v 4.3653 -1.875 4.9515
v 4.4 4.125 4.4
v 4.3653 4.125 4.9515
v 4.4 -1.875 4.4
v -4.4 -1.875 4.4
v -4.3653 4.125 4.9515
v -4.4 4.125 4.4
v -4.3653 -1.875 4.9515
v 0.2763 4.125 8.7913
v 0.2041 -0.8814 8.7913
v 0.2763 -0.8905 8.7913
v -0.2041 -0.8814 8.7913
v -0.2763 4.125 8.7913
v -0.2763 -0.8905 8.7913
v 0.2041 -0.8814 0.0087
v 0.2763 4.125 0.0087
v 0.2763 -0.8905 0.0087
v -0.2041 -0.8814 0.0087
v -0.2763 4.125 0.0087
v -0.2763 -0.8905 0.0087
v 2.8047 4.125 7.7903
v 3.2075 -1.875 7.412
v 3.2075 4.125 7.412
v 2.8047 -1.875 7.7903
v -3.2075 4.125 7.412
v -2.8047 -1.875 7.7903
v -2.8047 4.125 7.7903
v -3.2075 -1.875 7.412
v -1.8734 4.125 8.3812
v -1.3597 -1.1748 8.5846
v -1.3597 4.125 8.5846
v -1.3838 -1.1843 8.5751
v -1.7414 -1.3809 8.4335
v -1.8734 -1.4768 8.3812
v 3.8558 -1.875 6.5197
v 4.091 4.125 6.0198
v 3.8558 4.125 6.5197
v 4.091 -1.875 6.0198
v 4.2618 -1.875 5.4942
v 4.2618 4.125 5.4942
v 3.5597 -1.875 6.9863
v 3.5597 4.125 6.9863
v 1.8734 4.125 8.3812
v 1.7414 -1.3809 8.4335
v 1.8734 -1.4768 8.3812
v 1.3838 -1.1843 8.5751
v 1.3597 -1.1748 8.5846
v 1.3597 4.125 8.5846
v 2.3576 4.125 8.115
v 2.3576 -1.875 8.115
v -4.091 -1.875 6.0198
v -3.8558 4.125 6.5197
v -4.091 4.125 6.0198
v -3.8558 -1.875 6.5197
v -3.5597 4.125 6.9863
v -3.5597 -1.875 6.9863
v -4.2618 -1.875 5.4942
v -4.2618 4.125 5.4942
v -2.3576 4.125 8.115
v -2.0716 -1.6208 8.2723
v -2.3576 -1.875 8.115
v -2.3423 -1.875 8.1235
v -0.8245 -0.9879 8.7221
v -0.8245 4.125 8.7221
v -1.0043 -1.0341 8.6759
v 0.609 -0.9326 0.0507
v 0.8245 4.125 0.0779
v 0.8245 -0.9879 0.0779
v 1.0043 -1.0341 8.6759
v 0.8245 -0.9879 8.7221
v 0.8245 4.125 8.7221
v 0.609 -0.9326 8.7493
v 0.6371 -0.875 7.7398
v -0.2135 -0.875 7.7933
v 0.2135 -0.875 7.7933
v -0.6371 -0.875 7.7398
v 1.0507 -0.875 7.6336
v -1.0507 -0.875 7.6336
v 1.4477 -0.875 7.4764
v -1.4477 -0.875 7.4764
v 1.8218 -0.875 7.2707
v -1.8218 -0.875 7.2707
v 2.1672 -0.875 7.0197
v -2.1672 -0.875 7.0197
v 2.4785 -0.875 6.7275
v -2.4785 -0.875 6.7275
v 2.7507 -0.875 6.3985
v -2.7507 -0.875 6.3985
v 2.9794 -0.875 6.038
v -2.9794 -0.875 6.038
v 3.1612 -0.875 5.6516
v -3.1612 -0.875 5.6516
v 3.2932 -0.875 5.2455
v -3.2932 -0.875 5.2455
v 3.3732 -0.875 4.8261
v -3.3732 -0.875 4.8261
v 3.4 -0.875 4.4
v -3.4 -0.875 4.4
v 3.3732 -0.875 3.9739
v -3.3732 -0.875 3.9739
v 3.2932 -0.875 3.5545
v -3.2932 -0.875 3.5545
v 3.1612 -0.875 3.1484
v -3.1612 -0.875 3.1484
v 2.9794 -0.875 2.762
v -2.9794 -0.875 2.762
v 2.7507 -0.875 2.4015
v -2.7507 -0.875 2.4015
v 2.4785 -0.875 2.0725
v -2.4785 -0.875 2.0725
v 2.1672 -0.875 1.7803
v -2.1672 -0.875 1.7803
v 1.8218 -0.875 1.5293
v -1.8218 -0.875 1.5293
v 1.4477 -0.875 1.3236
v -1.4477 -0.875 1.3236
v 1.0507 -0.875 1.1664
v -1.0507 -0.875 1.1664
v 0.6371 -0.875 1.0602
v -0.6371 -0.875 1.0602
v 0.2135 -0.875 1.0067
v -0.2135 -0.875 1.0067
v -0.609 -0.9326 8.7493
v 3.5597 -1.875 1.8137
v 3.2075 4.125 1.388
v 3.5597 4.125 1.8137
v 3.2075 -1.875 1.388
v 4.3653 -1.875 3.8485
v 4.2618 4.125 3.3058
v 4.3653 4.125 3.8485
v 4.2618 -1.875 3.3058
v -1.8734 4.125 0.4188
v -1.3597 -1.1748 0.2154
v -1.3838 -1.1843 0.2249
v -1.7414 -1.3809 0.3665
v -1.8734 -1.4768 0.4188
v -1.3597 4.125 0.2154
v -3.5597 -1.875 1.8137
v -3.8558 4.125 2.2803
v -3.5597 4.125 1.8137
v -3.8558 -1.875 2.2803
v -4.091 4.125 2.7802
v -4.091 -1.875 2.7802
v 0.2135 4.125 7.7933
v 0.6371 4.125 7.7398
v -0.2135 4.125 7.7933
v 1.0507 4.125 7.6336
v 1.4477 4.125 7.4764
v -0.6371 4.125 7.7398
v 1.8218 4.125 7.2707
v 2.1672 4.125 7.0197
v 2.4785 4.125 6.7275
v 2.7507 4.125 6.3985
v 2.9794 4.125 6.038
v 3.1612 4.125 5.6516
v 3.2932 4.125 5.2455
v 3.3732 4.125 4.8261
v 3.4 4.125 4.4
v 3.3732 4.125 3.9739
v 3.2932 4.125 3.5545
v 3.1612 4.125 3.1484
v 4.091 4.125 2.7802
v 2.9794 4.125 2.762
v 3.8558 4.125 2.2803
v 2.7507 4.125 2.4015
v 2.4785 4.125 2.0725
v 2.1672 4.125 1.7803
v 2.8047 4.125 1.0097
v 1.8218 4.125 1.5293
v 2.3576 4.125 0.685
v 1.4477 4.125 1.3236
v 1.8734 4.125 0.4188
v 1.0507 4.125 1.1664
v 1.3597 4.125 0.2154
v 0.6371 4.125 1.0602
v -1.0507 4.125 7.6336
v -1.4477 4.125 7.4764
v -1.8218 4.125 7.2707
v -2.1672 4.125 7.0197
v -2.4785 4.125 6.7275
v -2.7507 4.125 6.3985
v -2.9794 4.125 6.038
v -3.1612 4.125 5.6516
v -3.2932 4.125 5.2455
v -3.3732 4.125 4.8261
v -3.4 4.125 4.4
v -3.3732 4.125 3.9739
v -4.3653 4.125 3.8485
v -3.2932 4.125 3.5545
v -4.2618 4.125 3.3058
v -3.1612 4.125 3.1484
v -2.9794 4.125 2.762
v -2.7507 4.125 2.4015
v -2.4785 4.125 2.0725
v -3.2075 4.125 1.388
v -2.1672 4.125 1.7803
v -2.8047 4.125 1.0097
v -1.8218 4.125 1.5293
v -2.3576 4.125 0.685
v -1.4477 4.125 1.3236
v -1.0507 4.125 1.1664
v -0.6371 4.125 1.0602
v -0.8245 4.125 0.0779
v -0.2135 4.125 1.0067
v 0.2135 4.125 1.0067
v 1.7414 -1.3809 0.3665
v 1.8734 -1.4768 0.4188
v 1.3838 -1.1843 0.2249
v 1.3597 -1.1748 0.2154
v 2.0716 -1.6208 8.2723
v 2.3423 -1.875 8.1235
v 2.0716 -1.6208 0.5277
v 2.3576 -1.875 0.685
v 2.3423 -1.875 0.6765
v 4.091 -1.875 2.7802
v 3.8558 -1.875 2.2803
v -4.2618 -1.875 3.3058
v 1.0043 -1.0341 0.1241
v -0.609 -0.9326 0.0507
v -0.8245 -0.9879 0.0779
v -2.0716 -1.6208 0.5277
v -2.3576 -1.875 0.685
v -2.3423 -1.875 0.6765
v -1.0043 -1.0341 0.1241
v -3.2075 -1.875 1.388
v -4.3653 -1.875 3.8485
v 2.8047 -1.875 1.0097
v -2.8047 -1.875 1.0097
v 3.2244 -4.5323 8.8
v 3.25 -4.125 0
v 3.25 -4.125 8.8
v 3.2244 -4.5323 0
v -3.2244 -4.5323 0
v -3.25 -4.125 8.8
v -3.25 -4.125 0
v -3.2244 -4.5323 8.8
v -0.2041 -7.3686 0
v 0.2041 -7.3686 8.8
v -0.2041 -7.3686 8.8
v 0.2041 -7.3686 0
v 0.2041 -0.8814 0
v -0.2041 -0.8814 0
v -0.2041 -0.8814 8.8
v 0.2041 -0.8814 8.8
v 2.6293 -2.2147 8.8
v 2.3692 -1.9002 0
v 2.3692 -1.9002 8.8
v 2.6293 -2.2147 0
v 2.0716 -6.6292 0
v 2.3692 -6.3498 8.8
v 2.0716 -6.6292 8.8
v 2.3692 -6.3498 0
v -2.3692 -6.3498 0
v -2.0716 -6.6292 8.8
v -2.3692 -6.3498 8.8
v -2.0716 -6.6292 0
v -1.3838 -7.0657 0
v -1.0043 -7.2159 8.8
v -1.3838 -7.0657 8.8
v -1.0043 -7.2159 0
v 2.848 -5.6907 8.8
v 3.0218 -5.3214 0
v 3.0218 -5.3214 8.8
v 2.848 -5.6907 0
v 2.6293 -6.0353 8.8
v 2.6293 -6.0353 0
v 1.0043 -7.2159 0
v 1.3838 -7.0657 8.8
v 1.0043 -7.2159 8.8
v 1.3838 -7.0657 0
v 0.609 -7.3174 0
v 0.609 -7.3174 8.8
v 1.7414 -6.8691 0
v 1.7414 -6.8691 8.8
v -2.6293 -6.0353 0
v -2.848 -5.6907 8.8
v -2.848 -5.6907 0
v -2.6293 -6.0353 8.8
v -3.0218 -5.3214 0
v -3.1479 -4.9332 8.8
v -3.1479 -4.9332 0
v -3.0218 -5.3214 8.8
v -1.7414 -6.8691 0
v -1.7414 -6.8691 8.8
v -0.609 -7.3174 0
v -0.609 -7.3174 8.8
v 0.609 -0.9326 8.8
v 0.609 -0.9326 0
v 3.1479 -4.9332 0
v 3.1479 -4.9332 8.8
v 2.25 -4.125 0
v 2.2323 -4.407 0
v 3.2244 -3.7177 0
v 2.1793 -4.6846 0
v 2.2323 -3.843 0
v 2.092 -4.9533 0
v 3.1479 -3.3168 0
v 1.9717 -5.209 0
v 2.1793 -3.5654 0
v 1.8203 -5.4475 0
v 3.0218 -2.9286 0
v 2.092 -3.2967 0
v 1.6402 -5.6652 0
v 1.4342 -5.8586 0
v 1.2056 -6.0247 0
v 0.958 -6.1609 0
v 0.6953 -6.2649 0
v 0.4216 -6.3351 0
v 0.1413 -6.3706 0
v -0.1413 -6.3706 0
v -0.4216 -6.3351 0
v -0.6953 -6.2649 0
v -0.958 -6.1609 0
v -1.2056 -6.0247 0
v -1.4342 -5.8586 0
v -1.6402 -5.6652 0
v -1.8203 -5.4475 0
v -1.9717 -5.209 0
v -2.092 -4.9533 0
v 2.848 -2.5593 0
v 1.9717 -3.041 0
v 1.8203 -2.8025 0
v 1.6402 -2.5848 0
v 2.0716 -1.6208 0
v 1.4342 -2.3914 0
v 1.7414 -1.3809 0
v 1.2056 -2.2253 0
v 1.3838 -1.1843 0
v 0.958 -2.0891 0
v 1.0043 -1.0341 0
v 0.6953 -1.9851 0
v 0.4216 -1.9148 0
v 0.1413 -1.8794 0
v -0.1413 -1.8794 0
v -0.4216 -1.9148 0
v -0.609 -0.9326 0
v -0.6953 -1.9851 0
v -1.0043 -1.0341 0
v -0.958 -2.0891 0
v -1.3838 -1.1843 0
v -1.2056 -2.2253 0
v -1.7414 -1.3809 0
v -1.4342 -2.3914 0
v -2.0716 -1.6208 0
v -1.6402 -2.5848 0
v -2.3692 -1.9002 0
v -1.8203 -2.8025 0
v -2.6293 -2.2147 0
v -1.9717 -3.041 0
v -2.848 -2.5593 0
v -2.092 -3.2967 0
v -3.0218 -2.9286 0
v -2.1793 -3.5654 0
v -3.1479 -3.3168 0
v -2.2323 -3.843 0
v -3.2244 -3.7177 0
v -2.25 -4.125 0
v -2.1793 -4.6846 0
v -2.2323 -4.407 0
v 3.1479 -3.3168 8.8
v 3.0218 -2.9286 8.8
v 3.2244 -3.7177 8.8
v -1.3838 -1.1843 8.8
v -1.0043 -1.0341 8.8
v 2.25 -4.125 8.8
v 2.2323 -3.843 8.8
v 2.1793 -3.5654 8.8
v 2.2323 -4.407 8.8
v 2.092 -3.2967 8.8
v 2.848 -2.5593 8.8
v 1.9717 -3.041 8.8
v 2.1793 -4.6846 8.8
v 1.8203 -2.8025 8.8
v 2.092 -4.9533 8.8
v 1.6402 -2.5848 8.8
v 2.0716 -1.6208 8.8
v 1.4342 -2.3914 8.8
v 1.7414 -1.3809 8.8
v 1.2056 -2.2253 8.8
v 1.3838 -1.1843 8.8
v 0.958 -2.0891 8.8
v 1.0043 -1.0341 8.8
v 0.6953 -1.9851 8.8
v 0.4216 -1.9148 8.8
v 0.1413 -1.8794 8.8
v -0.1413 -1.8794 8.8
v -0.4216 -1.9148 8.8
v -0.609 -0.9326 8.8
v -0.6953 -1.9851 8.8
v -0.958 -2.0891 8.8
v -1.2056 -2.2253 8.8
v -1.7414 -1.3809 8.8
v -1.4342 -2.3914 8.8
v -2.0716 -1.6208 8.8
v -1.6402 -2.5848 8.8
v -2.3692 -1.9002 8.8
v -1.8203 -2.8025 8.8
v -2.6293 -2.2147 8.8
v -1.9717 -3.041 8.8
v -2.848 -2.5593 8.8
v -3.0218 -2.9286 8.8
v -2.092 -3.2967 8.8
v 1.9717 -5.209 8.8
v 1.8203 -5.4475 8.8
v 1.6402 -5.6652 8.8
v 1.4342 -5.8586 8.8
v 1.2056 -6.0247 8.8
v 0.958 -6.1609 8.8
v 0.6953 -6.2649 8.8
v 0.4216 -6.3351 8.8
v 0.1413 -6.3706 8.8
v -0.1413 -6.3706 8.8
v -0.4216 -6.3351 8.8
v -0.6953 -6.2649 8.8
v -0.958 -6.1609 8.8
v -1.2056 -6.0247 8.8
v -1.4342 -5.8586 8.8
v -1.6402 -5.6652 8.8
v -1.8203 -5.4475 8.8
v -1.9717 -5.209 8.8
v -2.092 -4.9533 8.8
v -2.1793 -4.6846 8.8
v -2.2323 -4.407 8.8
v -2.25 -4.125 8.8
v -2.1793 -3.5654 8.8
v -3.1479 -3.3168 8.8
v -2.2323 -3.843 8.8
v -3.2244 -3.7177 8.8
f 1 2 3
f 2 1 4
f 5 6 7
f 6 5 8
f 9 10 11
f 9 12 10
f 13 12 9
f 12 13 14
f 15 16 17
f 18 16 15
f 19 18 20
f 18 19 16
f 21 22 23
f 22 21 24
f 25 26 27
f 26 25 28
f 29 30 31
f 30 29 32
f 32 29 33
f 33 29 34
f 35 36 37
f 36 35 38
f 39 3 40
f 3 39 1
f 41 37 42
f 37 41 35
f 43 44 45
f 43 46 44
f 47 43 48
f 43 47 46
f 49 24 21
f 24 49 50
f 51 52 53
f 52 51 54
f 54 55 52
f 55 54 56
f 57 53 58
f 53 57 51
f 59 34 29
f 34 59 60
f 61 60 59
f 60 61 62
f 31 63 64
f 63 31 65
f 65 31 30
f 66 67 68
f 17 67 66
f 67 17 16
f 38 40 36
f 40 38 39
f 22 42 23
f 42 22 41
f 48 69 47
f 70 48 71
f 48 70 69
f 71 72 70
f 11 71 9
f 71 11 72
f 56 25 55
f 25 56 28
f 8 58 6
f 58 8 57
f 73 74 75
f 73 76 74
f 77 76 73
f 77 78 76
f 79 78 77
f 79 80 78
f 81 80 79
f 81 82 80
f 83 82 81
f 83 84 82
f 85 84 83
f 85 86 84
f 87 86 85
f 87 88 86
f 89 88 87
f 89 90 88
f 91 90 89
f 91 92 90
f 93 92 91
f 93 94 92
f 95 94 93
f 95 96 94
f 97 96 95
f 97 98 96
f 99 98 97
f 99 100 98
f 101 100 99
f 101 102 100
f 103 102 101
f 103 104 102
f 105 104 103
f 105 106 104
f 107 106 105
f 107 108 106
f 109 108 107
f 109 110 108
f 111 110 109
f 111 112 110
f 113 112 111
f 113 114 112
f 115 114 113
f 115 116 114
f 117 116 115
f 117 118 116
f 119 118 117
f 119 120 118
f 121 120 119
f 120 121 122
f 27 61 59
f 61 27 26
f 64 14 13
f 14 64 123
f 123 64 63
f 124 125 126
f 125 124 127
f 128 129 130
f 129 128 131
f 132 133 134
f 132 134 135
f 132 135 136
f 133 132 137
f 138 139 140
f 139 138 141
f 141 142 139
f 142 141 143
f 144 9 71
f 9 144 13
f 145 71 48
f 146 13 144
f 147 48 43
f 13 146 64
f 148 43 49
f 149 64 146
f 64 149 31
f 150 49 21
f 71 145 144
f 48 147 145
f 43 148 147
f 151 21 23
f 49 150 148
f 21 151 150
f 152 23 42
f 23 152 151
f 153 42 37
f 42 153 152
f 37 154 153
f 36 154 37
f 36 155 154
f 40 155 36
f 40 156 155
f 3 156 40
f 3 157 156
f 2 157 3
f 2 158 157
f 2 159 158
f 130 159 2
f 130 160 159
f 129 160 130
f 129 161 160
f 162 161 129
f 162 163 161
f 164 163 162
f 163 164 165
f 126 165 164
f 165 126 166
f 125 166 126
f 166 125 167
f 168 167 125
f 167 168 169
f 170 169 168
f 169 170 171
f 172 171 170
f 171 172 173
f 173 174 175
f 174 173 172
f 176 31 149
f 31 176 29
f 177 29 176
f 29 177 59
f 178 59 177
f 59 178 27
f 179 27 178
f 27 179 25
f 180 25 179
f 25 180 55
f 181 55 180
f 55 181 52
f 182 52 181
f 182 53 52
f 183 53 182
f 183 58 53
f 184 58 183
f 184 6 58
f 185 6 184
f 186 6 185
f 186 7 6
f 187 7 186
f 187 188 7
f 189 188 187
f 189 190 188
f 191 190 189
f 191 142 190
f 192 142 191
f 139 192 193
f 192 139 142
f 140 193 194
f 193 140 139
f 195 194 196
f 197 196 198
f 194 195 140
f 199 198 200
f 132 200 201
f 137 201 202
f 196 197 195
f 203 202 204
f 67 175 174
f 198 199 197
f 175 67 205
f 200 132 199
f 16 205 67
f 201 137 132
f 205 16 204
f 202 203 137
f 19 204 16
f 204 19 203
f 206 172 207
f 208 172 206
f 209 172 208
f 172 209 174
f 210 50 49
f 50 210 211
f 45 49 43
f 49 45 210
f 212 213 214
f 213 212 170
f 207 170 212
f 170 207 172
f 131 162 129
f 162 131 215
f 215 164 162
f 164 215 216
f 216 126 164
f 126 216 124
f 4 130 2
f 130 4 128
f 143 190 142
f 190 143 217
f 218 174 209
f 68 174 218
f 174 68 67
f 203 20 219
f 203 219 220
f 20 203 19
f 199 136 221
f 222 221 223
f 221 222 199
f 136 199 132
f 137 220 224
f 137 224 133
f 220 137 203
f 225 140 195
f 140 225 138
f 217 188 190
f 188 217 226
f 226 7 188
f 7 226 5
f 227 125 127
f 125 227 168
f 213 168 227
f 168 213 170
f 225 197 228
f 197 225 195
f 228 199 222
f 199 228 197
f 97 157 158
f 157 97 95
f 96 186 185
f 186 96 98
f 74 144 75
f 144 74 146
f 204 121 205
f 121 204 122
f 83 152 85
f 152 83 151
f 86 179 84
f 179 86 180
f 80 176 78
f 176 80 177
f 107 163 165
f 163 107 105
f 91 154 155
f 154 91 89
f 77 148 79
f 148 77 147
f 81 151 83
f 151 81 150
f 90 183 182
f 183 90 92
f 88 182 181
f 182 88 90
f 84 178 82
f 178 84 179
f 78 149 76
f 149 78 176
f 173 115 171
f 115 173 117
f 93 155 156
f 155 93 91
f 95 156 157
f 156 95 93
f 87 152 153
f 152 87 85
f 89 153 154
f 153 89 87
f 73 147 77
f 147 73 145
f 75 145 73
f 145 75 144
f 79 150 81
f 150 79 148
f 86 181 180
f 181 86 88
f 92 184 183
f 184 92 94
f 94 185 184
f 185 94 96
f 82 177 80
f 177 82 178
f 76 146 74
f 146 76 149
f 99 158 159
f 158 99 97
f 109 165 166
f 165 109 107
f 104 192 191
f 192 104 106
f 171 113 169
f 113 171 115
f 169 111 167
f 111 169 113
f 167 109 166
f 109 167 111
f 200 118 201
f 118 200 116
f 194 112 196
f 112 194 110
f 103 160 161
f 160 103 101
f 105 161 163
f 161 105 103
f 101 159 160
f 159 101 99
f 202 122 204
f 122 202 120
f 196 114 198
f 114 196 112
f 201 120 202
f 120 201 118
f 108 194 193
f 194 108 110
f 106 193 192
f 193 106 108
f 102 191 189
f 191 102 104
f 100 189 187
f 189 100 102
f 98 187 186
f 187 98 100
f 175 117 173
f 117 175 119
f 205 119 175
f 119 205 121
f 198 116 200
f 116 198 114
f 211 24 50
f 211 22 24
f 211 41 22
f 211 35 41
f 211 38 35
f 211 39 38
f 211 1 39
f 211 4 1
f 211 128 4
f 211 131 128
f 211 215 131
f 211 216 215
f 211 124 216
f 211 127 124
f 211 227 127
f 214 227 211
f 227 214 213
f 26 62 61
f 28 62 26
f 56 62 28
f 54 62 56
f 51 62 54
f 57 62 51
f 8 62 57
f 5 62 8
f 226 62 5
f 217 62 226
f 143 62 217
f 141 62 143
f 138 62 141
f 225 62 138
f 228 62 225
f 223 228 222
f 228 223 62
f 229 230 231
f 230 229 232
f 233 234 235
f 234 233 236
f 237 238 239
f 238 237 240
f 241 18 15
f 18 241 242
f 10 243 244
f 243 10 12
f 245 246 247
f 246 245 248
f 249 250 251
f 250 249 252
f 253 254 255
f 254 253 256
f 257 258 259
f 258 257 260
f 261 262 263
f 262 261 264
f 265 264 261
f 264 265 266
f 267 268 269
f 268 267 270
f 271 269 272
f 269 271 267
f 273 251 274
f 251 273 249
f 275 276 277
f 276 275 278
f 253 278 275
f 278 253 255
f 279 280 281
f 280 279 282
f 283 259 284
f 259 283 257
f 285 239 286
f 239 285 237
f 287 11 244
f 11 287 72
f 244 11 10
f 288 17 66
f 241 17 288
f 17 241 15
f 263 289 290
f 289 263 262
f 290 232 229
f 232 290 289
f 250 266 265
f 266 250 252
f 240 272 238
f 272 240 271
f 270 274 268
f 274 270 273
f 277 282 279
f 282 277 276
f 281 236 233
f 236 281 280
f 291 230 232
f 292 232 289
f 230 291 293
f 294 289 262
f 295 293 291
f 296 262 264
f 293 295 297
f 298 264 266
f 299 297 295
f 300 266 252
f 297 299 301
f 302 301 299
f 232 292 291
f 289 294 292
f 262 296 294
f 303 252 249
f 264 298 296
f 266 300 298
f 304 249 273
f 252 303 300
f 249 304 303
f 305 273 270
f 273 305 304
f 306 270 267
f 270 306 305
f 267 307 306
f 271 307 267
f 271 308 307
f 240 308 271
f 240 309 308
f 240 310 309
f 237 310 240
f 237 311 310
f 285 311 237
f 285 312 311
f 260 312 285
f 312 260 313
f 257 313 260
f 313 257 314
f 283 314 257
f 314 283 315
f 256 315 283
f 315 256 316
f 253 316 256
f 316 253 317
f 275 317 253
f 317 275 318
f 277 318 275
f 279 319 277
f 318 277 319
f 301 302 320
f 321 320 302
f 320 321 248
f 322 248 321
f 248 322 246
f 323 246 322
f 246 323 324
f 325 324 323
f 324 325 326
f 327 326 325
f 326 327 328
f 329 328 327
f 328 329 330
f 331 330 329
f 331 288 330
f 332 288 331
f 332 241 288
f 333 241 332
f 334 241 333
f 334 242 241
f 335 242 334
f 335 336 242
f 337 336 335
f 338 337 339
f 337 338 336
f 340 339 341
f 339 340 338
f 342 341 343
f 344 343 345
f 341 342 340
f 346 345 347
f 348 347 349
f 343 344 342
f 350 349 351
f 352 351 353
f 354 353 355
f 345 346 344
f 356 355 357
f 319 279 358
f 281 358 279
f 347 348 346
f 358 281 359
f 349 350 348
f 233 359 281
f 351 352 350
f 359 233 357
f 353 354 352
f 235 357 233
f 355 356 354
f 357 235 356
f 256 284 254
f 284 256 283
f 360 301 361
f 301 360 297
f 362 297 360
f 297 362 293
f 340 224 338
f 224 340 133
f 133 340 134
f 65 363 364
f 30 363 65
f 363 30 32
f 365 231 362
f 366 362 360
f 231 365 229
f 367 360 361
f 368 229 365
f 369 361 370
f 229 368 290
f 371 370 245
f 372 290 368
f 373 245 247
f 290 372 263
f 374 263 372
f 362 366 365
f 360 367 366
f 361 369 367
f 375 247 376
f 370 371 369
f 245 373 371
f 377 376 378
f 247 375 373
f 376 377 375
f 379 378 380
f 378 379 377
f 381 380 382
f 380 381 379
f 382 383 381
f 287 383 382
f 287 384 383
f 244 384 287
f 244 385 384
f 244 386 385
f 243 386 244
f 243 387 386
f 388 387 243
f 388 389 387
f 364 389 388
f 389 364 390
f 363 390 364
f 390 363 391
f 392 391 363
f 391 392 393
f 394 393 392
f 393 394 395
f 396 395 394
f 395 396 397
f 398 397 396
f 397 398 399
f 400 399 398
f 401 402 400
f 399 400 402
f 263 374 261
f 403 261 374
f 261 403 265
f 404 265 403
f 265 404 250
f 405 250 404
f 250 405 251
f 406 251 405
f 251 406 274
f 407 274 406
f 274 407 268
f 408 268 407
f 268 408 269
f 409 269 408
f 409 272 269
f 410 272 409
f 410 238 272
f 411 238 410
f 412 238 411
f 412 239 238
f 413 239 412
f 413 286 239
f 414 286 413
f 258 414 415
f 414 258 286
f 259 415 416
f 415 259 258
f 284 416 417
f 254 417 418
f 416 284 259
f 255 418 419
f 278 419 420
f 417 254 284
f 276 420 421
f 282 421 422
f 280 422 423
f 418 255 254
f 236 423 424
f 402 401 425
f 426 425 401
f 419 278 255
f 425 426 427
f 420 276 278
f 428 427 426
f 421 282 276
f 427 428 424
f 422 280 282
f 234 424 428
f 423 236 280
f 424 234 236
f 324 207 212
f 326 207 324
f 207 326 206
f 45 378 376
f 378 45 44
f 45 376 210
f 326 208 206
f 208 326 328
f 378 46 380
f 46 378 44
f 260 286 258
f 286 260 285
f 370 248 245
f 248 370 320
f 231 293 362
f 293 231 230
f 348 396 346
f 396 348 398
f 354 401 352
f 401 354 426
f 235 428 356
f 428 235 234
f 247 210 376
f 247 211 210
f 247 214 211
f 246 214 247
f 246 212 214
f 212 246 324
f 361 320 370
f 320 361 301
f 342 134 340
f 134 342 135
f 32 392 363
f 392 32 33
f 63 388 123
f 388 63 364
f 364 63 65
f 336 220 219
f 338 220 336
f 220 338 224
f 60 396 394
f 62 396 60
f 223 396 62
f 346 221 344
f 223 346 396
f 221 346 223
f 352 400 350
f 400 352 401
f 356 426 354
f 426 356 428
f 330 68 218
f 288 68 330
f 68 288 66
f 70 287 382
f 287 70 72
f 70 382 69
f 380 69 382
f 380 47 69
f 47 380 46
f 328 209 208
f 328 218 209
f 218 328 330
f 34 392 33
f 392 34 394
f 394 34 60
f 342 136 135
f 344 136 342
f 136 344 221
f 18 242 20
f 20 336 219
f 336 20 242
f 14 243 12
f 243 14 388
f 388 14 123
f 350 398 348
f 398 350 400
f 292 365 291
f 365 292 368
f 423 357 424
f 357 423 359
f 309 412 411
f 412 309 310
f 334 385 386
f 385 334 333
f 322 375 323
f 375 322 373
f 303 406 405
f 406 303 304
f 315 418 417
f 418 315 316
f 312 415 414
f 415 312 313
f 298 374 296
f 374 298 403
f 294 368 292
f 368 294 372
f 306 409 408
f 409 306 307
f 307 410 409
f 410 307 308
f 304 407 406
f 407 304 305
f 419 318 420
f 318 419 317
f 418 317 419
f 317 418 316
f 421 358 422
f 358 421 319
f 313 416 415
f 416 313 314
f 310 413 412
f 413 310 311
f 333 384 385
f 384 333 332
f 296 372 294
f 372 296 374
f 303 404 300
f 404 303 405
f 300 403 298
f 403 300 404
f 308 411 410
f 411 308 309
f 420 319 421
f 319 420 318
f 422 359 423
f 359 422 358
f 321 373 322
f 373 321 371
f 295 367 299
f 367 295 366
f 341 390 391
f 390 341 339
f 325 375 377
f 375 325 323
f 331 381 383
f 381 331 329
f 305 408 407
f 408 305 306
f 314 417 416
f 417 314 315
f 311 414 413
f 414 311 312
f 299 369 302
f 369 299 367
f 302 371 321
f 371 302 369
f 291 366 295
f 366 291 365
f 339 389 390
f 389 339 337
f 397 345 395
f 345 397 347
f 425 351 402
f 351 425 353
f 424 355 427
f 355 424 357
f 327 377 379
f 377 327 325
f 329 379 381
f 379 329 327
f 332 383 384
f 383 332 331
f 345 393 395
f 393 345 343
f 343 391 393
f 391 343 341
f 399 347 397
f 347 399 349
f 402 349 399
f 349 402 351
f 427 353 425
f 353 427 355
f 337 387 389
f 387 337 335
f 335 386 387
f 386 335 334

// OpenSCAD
pot_width = 6.8/2;
pot_cap_width = 1;
pot_cap_height  = 5;

skewer_radius = 4.5/2;
skewer_pipe_length = (pot_width + pot_cap_width) *2;
skewer_rim = 1.0;

skewer_pipe_total = skewer_radius + skewer_rim;

$fn = 50;

module  PotCap() {
    distanceToInnerRim = pot_cap_width + pot_width;
    difference() {
        cylinder(pot_cap_height, distanceToInnerRim, distanceToInnerRim, false);    
        cylinder(pot_cap_height, pot_width, pot_width, false);
    }
    translate([0,0, pot_cap_height]) {
         cylinder(skewer_rim, distanceToInnerRim, distanceToInnerRim, false);
    }
}

module SkewerPipe() {
    
    difference() {
        cylinder(skewer_pipe_length, skewer_pipe_total, skewer_pipe_total, false);
        cylinder(skewer_pipe_length, skewer_radius, skewer_radius, false);
    }
}

module Complete() {
    PotCap();
    translate([0,skewer_pipe_length/2, pot_cap_height + skewer_pipe_total]) {
        rotate([90,0,0]) {
            SkewerPipe();
        }
    }
}


//Rotate and Center for cleaner printing
full_length = (pot_cap_height + skewer_pipe_total)/2;
rotate([90,0,0]) {
    translate([0,skewer_pipe_length/2, - full_length]) {
        Complete();
    }
}
